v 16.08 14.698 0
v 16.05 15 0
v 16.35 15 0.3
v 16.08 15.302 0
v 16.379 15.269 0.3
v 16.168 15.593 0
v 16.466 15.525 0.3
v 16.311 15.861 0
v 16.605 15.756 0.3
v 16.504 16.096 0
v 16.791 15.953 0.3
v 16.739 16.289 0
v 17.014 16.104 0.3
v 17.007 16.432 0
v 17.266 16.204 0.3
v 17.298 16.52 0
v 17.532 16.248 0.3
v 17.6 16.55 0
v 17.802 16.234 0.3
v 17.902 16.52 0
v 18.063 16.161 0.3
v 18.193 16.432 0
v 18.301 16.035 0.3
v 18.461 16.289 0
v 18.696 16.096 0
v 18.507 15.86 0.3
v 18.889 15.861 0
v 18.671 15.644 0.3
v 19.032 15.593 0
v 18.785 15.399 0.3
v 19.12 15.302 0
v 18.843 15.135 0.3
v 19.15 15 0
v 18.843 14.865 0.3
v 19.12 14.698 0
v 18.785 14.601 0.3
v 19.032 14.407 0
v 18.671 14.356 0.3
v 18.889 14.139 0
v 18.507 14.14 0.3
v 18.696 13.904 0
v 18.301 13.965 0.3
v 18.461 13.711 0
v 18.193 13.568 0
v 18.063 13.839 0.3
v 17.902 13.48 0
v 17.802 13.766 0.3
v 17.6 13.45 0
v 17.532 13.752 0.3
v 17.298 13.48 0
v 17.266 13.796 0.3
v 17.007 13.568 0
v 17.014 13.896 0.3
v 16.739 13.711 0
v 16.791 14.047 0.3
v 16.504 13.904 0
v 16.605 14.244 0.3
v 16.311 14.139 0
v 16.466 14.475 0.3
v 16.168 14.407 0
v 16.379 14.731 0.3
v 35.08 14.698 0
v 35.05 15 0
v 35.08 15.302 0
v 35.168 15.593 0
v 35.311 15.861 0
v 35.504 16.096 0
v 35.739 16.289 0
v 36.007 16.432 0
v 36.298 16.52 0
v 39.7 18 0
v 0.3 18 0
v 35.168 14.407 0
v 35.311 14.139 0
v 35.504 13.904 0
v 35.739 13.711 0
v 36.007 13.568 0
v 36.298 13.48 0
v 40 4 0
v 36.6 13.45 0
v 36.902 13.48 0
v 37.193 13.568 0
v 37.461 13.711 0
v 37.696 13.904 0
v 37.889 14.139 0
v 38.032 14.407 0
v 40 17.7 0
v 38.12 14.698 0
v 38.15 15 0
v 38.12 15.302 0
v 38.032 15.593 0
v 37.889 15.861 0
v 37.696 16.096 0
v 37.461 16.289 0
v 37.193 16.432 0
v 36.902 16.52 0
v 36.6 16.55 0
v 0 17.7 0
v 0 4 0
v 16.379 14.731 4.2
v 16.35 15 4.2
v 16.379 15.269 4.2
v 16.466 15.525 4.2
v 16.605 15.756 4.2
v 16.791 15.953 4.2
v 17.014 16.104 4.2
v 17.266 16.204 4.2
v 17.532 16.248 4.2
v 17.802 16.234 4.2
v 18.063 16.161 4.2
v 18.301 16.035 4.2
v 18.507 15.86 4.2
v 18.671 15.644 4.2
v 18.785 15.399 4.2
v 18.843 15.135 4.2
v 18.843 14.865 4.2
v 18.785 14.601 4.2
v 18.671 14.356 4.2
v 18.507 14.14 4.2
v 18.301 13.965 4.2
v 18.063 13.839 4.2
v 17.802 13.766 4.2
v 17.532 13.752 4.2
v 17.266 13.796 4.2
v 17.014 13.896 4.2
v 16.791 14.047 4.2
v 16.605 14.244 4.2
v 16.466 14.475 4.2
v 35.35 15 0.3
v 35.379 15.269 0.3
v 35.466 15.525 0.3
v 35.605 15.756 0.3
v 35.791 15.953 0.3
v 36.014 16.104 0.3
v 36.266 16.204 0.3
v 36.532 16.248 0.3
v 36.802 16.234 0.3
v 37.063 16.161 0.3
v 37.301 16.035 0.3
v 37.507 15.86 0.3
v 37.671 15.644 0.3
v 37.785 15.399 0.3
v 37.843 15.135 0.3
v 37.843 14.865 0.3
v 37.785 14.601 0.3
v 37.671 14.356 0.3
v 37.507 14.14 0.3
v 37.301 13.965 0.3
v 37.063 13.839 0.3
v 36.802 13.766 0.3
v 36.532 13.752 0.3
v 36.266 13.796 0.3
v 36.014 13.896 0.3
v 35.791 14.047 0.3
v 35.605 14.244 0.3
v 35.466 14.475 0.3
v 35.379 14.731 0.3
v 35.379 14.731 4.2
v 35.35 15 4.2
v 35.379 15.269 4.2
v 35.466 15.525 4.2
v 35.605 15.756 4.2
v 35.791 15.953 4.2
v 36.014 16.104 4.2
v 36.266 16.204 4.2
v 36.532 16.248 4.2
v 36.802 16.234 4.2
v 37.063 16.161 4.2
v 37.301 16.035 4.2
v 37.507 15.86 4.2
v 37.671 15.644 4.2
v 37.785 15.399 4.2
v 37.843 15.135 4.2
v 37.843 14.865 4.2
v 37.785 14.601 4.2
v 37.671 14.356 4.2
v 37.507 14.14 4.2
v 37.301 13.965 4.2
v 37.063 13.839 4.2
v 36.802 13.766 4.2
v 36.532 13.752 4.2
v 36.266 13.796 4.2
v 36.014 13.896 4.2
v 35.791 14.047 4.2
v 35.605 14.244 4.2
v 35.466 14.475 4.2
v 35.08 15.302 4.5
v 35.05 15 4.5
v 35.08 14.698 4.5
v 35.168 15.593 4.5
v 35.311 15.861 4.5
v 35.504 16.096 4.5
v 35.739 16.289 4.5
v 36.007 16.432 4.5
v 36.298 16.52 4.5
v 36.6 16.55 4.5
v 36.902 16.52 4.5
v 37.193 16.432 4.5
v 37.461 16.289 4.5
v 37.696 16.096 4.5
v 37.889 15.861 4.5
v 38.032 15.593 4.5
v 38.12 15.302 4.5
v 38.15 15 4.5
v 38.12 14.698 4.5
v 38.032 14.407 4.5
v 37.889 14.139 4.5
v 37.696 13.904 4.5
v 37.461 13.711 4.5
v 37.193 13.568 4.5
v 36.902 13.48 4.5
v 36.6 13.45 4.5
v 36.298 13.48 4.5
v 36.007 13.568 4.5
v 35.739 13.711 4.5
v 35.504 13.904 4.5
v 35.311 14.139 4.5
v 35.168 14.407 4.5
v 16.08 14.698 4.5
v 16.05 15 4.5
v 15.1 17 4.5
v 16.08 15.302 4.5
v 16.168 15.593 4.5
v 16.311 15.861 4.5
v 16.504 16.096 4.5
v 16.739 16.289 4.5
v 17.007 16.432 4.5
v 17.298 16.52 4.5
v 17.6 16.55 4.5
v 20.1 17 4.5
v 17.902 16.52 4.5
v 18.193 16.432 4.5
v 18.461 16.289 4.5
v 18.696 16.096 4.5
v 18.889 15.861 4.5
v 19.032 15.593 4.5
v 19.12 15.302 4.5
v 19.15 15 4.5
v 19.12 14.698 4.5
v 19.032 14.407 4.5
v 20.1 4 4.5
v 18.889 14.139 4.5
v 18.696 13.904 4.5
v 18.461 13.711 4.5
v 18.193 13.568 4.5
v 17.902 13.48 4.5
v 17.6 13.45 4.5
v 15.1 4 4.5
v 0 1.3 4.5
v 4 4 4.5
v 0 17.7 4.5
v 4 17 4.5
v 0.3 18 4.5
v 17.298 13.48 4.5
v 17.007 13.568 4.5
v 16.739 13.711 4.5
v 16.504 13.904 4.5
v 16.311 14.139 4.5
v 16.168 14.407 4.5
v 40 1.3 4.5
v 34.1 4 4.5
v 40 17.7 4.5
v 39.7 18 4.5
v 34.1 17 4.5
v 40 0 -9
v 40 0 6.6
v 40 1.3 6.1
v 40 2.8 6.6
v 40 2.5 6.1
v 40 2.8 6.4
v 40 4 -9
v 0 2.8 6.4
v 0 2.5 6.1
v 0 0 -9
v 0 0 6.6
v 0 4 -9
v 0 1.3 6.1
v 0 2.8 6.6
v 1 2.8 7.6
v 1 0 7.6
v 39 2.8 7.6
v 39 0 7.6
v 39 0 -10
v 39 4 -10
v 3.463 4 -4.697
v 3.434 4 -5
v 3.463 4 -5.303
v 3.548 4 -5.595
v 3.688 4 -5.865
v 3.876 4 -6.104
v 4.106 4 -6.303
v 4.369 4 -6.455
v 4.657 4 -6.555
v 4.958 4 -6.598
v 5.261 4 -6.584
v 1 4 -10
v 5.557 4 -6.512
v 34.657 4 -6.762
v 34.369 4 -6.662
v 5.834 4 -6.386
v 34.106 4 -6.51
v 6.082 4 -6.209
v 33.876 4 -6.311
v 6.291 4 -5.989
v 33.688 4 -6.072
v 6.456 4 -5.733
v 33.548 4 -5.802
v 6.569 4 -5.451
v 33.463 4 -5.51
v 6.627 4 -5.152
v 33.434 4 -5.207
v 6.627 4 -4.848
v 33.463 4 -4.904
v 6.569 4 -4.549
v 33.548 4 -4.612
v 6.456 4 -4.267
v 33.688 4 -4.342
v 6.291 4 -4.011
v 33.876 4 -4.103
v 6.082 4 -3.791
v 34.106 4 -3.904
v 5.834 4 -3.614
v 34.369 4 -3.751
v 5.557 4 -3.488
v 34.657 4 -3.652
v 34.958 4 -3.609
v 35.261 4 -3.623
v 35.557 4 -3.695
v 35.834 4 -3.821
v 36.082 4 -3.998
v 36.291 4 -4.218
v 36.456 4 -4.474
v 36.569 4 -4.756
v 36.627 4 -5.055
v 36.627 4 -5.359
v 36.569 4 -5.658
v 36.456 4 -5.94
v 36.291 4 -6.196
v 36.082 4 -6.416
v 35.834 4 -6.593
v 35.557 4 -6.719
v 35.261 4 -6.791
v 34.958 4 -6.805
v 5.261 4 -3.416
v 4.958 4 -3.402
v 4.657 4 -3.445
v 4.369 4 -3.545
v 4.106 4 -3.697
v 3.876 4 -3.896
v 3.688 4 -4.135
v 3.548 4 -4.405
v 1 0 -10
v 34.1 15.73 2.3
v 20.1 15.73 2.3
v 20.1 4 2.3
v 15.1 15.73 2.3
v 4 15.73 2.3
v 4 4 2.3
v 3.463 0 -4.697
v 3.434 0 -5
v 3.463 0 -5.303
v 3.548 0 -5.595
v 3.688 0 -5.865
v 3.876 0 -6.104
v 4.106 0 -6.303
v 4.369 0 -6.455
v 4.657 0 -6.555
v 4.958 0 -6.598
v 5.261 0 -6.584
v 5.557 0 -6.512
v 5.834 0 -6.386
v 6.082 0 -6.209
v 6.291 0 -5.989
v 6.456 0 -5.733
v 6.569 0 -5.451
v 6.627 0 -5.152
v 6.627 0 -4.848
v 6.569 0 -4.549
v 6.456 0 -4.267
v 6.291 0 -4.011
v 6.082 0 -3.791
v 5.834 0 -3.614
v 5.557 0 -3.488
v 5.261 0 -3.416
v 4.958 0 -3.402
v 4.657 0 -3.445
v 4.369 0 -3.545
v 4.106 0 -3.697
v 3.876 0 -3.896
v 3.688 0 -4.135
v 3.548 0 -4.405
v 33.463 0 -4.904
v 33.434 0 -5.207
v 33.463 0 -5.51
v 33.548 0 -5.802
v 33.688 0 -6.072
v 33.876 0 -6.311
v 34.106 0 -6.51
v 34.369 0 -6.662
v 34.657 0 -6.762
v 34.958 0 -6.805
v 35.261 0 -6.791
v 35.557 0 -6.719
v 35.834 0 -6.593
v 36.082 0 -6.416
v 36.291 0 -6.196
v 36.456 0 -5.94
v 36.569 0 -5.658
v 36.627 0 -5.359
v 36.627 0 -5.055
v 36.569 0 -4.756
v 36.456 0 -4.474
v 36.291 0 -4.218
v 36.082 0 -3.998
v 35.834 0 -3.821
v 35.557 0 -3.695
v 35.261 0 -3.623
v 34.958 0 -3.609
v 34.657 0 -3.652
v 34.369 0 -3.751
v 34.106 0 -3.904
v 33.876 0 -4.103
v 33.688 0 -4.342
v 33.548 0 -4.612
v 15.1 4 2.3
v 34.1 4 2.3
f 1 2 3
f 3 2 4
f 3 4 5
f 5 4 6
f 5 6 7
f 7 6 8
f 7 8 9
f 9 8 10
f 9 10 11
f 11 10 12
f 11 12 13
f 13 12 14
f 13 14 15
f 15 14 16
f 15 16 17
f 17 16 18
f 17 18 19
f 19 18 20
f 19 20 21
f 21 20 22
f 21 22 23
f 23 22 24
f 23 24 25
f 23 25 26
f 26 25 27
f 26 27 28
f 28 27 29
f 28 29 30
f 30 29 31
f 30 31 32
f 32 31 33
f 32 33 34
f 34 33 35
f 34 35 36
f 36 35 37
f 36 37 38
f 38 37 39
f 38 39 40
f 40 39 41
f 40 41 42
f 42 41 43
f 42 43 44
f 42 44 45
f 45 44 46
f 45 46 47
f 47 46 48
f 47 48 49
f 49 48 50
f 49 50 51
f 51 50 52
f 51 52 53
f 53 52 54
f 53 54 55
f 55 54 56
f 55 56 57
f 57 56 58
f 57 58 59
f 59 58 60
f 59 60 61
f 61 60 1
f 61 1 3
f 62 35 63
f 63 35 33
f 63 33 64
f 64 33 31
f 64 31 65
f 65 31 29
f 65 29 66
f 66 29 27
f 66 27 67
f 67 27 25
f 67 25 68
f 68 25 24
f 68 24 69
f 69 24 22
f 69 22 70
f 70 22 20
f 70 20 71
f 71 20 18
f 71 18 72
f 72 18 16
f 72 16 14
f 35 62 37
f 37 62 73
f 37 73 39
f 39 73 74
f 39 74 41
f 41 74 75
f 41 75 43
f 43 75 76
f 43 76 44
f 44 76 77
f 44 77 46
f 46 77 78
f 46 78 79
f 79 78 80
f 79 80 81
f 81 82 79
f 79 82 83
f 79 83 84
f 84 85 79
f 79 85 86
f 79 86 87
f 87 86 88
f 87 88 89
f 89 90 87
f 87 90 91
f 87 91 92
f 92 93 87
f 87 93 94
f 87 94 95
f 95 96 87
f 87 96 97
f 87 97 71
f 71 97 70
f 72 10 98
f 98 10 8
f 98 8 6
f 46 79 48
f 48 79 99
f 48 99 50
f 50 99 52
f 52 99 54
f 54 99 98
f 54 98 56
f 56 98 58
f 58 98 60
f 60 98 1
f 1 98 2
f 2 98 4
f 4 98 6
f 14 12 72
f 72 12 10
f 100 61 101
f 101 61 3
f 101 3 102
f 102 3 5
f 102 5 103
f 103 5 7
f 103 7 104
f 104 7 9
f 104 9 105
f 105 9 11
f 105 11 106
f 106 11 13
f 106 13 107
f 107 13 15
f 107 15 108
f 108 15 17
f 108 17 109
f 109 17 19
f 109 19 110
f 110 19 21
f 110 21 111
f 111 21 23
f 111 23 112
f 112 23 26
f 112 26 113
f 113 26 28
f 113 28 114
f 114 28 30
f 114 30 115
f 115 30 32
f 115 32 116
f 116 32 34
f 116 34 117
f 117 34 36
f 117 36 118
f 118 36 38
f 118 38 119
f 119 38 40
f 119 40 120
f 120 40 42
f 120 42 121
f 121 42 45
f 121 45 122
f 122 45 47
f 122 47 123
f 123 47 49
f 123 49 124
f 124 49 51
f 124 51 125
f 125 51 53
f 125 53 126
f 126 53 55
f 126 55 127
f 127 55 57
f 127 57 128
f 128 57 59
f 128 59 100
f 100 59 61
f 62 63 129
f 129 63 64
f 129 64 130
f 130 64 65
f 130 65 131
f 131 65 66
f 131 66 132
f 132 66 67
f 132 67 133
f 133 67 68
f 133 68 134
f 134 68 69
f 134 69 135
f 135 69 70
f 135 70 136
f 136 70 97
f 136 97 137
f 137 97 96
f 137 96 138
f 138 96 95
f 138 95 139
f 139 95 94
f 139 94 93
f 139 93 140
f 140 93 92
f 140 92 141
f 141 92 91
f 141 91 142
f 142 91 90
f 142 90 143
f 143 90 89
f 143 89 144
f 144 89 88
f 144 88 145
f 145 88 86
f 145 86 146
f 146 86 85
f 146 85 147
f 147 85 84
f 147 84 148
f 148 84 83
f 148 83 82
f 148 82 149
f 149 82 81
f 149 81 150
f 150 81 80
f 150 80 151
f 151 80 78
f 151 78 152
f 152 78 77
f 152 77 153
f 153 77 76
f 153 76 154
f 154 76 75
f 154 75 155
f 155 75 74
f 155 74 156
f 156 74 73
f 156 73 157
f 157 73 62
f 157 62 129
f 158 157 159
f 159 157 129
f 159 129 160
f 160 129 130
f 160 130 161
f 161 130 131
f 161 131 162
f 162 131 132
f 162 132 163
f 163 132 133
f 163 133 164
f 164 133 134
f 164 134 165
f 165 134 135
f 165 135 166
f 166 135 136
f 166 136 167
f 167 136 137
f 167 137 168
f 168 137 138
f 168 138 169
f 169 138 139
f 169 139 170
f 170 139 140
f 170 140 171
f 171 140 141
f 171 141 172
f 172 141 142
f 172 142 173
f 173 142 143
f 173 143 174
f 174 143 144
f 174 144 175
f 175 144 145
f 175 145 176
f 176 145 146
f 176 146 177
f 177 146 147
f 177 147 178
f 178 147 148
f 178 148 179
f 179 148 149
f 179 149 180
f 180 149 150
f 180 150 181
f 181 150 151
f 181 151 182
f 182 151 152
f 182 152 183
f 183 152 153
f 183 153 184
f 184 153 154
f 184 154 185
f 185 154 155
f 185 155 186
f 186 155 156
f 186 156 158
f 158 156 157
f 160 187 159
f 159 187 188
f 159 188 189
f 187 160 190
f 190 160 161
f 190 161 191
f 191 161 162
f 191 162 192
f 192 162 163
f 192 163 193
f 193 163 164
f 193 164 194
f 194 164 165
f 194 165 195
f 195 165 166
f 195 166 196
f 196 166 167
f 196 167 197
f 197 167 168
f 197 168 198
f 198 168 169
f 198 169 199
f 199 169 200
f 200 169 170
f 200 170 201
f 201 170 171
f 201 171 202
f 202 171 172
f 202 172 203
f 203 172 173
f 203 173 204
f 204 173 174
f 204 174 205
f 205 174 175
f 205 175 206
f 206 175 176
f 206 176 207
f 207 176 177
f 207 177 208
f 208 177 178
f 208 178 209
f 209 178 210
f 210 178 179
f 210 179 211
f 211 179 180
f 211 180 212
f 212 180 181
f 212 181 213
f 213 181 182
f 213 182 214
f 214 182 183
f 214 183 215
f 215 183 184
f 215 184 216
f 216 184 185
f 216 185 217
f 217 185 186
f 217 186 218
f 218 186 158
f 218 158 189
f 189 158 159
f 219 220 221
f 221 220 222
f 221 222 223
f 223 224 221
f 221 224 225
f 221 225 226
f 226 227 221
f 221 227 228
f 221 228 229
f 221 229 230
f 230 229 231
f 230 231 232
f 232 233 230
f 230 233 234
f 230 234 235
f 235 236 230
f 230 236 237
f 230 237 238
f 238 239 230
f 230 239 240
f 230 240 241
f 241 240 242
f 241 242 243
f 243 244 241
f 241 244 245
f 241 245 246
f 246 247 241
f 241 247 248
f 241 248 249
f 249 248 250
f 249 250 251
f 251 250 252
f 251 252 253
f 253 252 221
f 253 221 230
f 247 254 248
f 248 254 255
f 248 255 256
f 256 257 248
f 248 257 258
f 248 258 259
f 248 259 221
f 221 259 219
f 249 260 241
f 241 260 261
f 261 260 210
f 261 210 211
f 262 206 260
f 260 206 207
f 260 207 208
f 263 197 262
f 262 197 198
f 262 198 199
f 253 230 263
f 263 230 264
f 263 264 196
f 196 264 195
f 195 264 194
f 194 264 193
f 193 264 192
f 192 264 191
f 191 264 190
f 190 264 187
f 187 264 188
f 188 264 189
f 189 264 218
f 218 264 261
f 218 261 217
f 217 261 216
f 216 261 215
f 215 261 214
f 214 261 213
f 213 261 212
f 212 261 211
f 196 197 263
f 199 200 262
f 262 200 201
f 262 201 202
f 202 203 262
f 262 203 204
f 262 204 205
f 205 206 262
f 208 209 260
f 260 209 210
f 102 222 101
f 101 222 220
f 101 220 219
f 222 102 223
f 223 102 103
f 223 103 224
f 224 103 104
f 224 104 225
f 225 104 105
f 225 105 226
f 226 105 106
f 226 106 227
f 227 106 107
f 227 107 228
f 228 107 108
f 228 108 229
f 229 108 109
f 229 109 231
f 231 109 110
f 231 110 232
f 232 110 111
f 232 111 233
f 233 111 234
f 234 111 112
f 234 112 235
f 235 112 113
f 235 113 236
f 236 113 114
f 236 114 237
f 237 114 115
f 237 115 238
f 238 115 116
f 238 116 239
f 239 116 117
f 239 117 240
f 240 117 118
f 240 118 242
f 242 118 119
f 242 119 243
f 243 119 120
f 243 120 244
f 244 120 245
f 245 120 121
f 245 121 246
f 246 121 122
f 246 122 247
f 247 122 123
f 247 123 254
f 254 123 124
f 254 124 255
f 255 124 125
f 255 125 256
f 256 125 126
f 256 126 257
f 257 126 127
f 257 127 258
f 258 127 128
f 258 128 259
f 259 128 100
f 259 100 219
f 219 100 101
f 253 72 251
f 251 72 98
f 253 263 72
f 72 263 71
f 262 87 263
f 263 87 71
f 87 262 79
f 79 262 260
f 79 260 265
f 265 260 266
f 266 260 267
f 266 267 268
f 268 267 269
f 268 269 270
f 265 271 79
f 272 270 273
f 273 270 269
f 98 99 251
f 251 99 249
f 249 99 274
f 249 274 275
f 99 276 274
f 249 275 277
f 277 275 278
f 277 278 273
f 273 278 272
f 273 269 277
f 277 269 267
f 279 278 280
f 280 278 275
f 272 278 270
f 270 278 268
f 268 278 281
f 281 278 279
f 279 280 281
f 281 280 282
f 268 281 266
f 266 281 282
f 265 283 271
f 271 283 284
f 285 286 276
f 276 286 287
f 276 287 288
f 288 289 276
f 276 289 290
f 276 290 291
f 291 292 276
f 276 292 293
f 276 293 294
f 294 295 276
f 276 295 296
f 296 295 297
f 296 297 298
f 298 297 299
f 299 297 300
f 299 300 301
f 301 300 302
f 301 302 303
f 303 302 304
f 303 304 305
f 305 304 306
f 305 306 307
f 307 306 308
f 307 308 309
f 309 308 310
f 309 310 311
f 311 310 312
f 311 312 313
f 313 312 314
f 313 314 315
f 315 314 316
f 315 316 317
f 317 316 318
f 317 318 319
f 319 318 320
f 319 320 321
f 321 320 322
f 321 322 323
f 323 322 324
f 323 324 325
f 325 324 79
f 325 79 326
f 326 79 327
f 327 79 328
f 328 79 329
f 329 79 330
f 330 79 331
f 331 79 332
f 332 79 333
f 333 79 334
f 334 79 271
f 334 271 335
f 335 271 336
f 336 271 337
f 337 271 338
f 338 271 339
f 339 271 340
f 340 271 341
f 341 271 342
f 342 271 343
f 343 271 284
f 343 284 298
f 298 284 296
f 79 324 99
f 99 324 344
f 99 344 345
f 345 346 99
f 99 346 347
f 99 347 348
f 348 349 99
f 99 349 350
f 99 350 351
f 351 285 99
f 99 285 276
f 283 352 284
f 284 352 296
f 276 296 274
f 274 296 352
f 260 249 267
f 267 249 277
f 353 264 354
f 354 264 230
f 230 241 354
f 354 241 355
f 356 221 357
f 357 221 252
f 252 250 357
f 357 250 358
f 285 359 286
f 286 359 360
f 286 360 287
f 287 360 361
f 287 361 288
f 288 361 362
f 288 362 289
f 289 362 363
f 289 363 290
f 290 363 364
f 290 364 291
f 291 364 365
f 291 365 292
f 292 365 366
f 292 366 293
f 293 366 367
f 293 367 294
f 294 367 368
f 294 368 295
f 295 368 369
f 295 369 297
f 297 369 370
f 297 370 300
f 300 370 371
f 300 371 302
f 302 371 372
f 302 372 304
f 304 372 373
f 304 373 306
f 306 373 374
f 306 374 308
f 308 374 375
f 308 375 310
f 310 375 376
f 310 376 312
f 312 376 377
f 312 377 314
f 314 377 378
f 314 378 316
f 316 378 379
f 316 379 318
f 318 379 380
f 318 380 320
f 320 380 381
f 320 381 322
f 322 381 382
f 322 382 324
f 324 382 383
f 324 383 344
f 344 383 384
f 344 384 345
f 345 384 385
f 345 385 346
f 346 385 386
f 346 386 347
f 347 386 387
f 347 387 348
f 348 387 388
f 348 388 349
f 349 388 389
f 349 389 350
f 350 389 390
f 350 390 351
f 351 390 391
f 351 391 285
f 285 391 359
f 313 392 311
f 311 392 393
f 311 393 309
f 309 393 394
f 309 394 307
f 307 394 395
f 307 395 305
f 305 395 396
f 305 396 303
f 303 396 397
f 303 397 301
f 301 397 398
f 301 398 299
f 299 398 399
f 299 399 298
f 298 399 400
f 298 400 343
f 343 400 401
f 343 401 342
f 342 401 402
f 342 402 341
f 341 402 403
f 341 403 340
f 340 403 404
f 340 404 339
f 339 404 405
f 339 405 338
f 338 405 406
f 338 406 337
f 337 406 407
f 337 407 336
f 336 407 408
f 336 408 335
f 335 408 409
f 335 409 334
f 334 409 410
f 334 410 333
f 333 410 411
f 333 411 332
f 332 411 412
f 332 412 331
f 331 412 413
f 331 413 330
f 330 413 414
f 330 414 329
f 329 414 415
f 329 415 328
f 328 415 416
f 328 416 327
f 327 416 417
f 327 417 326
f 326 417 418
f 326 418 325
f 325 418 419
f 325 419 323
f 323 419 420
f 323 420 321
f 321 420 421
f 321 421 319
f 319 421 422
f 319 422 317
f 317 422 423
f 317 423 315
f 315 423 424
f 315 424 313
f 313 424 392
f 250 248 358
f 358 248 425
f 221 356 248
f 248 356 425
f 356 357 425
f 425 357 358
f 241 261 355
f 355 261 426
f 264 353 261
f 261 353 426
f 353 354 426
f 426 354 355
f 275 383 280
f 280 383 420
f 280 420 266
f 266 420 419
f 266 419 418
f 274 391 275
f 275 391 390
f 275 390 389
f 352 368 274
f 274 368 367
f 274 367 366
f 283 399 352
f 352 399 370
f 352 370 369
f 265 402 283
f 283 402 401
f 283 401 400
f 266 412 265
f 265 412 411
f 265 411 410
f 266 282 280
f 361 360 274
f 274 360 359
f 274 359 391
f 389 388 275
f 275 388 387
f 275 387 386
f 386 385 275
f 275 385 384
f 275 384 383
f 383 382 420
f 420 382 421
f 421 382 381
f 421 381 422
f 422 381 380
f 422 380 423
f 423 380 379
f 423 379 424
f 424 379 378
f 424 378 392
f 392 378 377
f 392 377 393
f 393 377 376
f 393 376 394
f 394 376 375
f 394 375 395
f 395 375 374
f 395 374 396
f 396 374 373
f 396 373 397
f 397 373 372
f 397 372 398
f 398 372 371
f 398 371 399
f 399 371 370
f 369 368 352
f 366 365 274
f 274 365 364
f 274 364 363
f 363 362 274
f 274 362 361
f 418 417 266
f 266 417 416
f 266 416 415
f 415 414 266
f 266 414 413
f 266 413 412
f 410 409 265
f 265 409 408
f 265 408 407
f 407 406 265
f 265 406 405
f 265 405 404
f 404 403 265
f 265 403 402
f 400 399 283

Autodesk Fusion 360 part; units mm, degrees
sketch "Skizze1" plane through (0, 0, 0) normal (0, 0, 1) x (1, 0, 0)
  line L0 (0, 0) -> (40, 0)
  line L1 (40, 0) -> (40, 18)
  line L2 (40, 18) -> (0, 18)
  line L3 (0, 18) -> (0, 0)
  circle A0 centre (36.6, 15) radius 1.25
  circle A1 centre (17.6, 15) radius 1.25
  line L4 (36.6, 15) -> (17.6, 15) construction
  line L5 (0, 0) -> (40, 0)
  line L6 (40, 0) -> (40, 4)
  line L7 (40, 4) -> (0, 4)
  line L8 (0, 4) -> (0, 0)
  line L9 (0, 18) -> (4, 18)
  line L10 (4, 18) -> (4, 0)
  line L11 (4, 0) -> (0, 0)
  line L12 (0, 0) -> (0, 18)
  line L13 (17.6, 18) -> (17.6, 4) construction
  line L14 (36.6, 18) -> (36.6, 4) construction
  line L15 (15.1, 18) -> (15.1, 4)
  line L16 (34.1, 18) -> (34.1, 4)
  line L17 (20.1, 18) -> (20.1, 4)
  line L18 (4, 17) -> (40, 17)
  dimension "d1" = 40
  dimension "d2" = 18
  dimension "d3" = 19
  dimension "d4" = 2.5
  dimension "d5" = 3
  dimension "d6" = 3.4
  dimension "d7" = 4
  dimension "d8" = 2.5
  dimension "d9" = 5
  dimension "d17" = 1
  dimension "d36" = 4
extrude "Extrusion1" add sketch "Skizze1" along normal blind 4.5
extrude "Extrusion2" cut sketch "Skizze1" against normal blind 2.2 from surface at 4.5 contours L7 L10 L15 L18 | L7 L16 L17 L18
extrude "Extrusion3" add sketch "Skizze1" against normal blind 10 contours L0 L3 L5 L7 L8 L10 L11 L12 | L0 L1 L5 L6 L7 L10
sketch "Skizze2" plane through (0, 0, 0) normal (0, -1, 0) x (1, 0, 0)
  line L0 (40, -10) -> (40, 4.5)
  line L1 (40, 4.5) -> (0, 4.5)
  line L2 (0, 4.5) -> (0, -10)
  line L3 (0, -10) -> (40, -10)
  line L4 (20, -10) -> (20.1, 4.5) construction
  line L5 (40, 0) -> (0, 0) construction
  circle A0 centre (5.0338, -5) radius 1.6
  circle A1 centre (35.0338, -5.2069) radius 1.6
  point P0 (20.1, 4.5)
  dimension "d18" = 3.2
  dimension "d19" = 5
  dimension "d35" = 30
extrude "Extrusion4" cut sketch "Skizze2" against normal through all contours A0 | A1
chamfer "Fase1" distance 2.2 angle 30 2 edges at (9.55, 17, 2.3) (27.1, 17, 2.3) measured on face at (7.7, 17, 3.7667) measured on face at (24.7667, 17, 3.7667)
sketch "Skizze3" plane through (40, 0, 0) normal (1, 0, 0) x (0, 1, 0)
  line L0 (4, 0) -> (18, 0)
  line L1 (18, 0) -> (18, 4.5)
  line L2 (18, 4.5) -> (0, 4.5)
  line L3 (0, 4.5) -> (0, -10)
  line L4 (0, -10) -> (4, -10)
  line L5 (4, -10) -> (4, 0)
  line L6 (0, 4.5) -> (0, 7.6)
  line L7 (0, 7.6) -> (2.8, 7.6)
  line L8 (2.8, 7.6) -> (2.8, 6.1)
  line L9 (2.8, 6.1) -> (1.3, 6.1)
  line L10 (1.3, 6.1) -> (1.3, 4.5)
  point P0 (18, 4.5)
  dimension "d23" = 16.7
  dimension "d24" = 1.6
  dimension "d25" = 1.5
  dimension "d26" = 1.5
extrude "Extrusion5" add sketch "Skizze3" against normal blind 40 contours L2 L6 L7 L8 L9 L10
chamfer "Fase2" distance 1 angle 45 4 edges at (0, 2, -10) (40, 2, -10) (40, 1.4, 7.6) (0, 1.4, 7.6) measured on face at (13.3333, 2.6667, -10) measured on face at (13.3333, 2.6667, -10) measured on face at (26.6667, 0.9333, 7.6) measured on face at (0, 7.7667, 3)
chamfer "Fase2" distance 0.3 angle 45 3 edges at (20, 2.8, 6.1) (40, 18, 2.25) (0, 18, 2.25) measured on face at (26.6667, 2.8, 7.1) measured on face at (40, 7.7667, 3) measured on face at (26.6667, 18, 1.5)
chamfer "Fase2" distance 0.3 angle 45 4 edges at (16.4346, 15.452, 4.5) (35.4346, 15.452, 4.5) (35.4346, 15.452, 0) (16.4346, 15.452, 0) measured on face at (37.0522, 6.3788, 4.5) measured on face at (37.0522, 6.3788, 4.5) measured on face at (37.8484, 14.9377, 3) measured on face at (18.8484, 14.9377, 3)
